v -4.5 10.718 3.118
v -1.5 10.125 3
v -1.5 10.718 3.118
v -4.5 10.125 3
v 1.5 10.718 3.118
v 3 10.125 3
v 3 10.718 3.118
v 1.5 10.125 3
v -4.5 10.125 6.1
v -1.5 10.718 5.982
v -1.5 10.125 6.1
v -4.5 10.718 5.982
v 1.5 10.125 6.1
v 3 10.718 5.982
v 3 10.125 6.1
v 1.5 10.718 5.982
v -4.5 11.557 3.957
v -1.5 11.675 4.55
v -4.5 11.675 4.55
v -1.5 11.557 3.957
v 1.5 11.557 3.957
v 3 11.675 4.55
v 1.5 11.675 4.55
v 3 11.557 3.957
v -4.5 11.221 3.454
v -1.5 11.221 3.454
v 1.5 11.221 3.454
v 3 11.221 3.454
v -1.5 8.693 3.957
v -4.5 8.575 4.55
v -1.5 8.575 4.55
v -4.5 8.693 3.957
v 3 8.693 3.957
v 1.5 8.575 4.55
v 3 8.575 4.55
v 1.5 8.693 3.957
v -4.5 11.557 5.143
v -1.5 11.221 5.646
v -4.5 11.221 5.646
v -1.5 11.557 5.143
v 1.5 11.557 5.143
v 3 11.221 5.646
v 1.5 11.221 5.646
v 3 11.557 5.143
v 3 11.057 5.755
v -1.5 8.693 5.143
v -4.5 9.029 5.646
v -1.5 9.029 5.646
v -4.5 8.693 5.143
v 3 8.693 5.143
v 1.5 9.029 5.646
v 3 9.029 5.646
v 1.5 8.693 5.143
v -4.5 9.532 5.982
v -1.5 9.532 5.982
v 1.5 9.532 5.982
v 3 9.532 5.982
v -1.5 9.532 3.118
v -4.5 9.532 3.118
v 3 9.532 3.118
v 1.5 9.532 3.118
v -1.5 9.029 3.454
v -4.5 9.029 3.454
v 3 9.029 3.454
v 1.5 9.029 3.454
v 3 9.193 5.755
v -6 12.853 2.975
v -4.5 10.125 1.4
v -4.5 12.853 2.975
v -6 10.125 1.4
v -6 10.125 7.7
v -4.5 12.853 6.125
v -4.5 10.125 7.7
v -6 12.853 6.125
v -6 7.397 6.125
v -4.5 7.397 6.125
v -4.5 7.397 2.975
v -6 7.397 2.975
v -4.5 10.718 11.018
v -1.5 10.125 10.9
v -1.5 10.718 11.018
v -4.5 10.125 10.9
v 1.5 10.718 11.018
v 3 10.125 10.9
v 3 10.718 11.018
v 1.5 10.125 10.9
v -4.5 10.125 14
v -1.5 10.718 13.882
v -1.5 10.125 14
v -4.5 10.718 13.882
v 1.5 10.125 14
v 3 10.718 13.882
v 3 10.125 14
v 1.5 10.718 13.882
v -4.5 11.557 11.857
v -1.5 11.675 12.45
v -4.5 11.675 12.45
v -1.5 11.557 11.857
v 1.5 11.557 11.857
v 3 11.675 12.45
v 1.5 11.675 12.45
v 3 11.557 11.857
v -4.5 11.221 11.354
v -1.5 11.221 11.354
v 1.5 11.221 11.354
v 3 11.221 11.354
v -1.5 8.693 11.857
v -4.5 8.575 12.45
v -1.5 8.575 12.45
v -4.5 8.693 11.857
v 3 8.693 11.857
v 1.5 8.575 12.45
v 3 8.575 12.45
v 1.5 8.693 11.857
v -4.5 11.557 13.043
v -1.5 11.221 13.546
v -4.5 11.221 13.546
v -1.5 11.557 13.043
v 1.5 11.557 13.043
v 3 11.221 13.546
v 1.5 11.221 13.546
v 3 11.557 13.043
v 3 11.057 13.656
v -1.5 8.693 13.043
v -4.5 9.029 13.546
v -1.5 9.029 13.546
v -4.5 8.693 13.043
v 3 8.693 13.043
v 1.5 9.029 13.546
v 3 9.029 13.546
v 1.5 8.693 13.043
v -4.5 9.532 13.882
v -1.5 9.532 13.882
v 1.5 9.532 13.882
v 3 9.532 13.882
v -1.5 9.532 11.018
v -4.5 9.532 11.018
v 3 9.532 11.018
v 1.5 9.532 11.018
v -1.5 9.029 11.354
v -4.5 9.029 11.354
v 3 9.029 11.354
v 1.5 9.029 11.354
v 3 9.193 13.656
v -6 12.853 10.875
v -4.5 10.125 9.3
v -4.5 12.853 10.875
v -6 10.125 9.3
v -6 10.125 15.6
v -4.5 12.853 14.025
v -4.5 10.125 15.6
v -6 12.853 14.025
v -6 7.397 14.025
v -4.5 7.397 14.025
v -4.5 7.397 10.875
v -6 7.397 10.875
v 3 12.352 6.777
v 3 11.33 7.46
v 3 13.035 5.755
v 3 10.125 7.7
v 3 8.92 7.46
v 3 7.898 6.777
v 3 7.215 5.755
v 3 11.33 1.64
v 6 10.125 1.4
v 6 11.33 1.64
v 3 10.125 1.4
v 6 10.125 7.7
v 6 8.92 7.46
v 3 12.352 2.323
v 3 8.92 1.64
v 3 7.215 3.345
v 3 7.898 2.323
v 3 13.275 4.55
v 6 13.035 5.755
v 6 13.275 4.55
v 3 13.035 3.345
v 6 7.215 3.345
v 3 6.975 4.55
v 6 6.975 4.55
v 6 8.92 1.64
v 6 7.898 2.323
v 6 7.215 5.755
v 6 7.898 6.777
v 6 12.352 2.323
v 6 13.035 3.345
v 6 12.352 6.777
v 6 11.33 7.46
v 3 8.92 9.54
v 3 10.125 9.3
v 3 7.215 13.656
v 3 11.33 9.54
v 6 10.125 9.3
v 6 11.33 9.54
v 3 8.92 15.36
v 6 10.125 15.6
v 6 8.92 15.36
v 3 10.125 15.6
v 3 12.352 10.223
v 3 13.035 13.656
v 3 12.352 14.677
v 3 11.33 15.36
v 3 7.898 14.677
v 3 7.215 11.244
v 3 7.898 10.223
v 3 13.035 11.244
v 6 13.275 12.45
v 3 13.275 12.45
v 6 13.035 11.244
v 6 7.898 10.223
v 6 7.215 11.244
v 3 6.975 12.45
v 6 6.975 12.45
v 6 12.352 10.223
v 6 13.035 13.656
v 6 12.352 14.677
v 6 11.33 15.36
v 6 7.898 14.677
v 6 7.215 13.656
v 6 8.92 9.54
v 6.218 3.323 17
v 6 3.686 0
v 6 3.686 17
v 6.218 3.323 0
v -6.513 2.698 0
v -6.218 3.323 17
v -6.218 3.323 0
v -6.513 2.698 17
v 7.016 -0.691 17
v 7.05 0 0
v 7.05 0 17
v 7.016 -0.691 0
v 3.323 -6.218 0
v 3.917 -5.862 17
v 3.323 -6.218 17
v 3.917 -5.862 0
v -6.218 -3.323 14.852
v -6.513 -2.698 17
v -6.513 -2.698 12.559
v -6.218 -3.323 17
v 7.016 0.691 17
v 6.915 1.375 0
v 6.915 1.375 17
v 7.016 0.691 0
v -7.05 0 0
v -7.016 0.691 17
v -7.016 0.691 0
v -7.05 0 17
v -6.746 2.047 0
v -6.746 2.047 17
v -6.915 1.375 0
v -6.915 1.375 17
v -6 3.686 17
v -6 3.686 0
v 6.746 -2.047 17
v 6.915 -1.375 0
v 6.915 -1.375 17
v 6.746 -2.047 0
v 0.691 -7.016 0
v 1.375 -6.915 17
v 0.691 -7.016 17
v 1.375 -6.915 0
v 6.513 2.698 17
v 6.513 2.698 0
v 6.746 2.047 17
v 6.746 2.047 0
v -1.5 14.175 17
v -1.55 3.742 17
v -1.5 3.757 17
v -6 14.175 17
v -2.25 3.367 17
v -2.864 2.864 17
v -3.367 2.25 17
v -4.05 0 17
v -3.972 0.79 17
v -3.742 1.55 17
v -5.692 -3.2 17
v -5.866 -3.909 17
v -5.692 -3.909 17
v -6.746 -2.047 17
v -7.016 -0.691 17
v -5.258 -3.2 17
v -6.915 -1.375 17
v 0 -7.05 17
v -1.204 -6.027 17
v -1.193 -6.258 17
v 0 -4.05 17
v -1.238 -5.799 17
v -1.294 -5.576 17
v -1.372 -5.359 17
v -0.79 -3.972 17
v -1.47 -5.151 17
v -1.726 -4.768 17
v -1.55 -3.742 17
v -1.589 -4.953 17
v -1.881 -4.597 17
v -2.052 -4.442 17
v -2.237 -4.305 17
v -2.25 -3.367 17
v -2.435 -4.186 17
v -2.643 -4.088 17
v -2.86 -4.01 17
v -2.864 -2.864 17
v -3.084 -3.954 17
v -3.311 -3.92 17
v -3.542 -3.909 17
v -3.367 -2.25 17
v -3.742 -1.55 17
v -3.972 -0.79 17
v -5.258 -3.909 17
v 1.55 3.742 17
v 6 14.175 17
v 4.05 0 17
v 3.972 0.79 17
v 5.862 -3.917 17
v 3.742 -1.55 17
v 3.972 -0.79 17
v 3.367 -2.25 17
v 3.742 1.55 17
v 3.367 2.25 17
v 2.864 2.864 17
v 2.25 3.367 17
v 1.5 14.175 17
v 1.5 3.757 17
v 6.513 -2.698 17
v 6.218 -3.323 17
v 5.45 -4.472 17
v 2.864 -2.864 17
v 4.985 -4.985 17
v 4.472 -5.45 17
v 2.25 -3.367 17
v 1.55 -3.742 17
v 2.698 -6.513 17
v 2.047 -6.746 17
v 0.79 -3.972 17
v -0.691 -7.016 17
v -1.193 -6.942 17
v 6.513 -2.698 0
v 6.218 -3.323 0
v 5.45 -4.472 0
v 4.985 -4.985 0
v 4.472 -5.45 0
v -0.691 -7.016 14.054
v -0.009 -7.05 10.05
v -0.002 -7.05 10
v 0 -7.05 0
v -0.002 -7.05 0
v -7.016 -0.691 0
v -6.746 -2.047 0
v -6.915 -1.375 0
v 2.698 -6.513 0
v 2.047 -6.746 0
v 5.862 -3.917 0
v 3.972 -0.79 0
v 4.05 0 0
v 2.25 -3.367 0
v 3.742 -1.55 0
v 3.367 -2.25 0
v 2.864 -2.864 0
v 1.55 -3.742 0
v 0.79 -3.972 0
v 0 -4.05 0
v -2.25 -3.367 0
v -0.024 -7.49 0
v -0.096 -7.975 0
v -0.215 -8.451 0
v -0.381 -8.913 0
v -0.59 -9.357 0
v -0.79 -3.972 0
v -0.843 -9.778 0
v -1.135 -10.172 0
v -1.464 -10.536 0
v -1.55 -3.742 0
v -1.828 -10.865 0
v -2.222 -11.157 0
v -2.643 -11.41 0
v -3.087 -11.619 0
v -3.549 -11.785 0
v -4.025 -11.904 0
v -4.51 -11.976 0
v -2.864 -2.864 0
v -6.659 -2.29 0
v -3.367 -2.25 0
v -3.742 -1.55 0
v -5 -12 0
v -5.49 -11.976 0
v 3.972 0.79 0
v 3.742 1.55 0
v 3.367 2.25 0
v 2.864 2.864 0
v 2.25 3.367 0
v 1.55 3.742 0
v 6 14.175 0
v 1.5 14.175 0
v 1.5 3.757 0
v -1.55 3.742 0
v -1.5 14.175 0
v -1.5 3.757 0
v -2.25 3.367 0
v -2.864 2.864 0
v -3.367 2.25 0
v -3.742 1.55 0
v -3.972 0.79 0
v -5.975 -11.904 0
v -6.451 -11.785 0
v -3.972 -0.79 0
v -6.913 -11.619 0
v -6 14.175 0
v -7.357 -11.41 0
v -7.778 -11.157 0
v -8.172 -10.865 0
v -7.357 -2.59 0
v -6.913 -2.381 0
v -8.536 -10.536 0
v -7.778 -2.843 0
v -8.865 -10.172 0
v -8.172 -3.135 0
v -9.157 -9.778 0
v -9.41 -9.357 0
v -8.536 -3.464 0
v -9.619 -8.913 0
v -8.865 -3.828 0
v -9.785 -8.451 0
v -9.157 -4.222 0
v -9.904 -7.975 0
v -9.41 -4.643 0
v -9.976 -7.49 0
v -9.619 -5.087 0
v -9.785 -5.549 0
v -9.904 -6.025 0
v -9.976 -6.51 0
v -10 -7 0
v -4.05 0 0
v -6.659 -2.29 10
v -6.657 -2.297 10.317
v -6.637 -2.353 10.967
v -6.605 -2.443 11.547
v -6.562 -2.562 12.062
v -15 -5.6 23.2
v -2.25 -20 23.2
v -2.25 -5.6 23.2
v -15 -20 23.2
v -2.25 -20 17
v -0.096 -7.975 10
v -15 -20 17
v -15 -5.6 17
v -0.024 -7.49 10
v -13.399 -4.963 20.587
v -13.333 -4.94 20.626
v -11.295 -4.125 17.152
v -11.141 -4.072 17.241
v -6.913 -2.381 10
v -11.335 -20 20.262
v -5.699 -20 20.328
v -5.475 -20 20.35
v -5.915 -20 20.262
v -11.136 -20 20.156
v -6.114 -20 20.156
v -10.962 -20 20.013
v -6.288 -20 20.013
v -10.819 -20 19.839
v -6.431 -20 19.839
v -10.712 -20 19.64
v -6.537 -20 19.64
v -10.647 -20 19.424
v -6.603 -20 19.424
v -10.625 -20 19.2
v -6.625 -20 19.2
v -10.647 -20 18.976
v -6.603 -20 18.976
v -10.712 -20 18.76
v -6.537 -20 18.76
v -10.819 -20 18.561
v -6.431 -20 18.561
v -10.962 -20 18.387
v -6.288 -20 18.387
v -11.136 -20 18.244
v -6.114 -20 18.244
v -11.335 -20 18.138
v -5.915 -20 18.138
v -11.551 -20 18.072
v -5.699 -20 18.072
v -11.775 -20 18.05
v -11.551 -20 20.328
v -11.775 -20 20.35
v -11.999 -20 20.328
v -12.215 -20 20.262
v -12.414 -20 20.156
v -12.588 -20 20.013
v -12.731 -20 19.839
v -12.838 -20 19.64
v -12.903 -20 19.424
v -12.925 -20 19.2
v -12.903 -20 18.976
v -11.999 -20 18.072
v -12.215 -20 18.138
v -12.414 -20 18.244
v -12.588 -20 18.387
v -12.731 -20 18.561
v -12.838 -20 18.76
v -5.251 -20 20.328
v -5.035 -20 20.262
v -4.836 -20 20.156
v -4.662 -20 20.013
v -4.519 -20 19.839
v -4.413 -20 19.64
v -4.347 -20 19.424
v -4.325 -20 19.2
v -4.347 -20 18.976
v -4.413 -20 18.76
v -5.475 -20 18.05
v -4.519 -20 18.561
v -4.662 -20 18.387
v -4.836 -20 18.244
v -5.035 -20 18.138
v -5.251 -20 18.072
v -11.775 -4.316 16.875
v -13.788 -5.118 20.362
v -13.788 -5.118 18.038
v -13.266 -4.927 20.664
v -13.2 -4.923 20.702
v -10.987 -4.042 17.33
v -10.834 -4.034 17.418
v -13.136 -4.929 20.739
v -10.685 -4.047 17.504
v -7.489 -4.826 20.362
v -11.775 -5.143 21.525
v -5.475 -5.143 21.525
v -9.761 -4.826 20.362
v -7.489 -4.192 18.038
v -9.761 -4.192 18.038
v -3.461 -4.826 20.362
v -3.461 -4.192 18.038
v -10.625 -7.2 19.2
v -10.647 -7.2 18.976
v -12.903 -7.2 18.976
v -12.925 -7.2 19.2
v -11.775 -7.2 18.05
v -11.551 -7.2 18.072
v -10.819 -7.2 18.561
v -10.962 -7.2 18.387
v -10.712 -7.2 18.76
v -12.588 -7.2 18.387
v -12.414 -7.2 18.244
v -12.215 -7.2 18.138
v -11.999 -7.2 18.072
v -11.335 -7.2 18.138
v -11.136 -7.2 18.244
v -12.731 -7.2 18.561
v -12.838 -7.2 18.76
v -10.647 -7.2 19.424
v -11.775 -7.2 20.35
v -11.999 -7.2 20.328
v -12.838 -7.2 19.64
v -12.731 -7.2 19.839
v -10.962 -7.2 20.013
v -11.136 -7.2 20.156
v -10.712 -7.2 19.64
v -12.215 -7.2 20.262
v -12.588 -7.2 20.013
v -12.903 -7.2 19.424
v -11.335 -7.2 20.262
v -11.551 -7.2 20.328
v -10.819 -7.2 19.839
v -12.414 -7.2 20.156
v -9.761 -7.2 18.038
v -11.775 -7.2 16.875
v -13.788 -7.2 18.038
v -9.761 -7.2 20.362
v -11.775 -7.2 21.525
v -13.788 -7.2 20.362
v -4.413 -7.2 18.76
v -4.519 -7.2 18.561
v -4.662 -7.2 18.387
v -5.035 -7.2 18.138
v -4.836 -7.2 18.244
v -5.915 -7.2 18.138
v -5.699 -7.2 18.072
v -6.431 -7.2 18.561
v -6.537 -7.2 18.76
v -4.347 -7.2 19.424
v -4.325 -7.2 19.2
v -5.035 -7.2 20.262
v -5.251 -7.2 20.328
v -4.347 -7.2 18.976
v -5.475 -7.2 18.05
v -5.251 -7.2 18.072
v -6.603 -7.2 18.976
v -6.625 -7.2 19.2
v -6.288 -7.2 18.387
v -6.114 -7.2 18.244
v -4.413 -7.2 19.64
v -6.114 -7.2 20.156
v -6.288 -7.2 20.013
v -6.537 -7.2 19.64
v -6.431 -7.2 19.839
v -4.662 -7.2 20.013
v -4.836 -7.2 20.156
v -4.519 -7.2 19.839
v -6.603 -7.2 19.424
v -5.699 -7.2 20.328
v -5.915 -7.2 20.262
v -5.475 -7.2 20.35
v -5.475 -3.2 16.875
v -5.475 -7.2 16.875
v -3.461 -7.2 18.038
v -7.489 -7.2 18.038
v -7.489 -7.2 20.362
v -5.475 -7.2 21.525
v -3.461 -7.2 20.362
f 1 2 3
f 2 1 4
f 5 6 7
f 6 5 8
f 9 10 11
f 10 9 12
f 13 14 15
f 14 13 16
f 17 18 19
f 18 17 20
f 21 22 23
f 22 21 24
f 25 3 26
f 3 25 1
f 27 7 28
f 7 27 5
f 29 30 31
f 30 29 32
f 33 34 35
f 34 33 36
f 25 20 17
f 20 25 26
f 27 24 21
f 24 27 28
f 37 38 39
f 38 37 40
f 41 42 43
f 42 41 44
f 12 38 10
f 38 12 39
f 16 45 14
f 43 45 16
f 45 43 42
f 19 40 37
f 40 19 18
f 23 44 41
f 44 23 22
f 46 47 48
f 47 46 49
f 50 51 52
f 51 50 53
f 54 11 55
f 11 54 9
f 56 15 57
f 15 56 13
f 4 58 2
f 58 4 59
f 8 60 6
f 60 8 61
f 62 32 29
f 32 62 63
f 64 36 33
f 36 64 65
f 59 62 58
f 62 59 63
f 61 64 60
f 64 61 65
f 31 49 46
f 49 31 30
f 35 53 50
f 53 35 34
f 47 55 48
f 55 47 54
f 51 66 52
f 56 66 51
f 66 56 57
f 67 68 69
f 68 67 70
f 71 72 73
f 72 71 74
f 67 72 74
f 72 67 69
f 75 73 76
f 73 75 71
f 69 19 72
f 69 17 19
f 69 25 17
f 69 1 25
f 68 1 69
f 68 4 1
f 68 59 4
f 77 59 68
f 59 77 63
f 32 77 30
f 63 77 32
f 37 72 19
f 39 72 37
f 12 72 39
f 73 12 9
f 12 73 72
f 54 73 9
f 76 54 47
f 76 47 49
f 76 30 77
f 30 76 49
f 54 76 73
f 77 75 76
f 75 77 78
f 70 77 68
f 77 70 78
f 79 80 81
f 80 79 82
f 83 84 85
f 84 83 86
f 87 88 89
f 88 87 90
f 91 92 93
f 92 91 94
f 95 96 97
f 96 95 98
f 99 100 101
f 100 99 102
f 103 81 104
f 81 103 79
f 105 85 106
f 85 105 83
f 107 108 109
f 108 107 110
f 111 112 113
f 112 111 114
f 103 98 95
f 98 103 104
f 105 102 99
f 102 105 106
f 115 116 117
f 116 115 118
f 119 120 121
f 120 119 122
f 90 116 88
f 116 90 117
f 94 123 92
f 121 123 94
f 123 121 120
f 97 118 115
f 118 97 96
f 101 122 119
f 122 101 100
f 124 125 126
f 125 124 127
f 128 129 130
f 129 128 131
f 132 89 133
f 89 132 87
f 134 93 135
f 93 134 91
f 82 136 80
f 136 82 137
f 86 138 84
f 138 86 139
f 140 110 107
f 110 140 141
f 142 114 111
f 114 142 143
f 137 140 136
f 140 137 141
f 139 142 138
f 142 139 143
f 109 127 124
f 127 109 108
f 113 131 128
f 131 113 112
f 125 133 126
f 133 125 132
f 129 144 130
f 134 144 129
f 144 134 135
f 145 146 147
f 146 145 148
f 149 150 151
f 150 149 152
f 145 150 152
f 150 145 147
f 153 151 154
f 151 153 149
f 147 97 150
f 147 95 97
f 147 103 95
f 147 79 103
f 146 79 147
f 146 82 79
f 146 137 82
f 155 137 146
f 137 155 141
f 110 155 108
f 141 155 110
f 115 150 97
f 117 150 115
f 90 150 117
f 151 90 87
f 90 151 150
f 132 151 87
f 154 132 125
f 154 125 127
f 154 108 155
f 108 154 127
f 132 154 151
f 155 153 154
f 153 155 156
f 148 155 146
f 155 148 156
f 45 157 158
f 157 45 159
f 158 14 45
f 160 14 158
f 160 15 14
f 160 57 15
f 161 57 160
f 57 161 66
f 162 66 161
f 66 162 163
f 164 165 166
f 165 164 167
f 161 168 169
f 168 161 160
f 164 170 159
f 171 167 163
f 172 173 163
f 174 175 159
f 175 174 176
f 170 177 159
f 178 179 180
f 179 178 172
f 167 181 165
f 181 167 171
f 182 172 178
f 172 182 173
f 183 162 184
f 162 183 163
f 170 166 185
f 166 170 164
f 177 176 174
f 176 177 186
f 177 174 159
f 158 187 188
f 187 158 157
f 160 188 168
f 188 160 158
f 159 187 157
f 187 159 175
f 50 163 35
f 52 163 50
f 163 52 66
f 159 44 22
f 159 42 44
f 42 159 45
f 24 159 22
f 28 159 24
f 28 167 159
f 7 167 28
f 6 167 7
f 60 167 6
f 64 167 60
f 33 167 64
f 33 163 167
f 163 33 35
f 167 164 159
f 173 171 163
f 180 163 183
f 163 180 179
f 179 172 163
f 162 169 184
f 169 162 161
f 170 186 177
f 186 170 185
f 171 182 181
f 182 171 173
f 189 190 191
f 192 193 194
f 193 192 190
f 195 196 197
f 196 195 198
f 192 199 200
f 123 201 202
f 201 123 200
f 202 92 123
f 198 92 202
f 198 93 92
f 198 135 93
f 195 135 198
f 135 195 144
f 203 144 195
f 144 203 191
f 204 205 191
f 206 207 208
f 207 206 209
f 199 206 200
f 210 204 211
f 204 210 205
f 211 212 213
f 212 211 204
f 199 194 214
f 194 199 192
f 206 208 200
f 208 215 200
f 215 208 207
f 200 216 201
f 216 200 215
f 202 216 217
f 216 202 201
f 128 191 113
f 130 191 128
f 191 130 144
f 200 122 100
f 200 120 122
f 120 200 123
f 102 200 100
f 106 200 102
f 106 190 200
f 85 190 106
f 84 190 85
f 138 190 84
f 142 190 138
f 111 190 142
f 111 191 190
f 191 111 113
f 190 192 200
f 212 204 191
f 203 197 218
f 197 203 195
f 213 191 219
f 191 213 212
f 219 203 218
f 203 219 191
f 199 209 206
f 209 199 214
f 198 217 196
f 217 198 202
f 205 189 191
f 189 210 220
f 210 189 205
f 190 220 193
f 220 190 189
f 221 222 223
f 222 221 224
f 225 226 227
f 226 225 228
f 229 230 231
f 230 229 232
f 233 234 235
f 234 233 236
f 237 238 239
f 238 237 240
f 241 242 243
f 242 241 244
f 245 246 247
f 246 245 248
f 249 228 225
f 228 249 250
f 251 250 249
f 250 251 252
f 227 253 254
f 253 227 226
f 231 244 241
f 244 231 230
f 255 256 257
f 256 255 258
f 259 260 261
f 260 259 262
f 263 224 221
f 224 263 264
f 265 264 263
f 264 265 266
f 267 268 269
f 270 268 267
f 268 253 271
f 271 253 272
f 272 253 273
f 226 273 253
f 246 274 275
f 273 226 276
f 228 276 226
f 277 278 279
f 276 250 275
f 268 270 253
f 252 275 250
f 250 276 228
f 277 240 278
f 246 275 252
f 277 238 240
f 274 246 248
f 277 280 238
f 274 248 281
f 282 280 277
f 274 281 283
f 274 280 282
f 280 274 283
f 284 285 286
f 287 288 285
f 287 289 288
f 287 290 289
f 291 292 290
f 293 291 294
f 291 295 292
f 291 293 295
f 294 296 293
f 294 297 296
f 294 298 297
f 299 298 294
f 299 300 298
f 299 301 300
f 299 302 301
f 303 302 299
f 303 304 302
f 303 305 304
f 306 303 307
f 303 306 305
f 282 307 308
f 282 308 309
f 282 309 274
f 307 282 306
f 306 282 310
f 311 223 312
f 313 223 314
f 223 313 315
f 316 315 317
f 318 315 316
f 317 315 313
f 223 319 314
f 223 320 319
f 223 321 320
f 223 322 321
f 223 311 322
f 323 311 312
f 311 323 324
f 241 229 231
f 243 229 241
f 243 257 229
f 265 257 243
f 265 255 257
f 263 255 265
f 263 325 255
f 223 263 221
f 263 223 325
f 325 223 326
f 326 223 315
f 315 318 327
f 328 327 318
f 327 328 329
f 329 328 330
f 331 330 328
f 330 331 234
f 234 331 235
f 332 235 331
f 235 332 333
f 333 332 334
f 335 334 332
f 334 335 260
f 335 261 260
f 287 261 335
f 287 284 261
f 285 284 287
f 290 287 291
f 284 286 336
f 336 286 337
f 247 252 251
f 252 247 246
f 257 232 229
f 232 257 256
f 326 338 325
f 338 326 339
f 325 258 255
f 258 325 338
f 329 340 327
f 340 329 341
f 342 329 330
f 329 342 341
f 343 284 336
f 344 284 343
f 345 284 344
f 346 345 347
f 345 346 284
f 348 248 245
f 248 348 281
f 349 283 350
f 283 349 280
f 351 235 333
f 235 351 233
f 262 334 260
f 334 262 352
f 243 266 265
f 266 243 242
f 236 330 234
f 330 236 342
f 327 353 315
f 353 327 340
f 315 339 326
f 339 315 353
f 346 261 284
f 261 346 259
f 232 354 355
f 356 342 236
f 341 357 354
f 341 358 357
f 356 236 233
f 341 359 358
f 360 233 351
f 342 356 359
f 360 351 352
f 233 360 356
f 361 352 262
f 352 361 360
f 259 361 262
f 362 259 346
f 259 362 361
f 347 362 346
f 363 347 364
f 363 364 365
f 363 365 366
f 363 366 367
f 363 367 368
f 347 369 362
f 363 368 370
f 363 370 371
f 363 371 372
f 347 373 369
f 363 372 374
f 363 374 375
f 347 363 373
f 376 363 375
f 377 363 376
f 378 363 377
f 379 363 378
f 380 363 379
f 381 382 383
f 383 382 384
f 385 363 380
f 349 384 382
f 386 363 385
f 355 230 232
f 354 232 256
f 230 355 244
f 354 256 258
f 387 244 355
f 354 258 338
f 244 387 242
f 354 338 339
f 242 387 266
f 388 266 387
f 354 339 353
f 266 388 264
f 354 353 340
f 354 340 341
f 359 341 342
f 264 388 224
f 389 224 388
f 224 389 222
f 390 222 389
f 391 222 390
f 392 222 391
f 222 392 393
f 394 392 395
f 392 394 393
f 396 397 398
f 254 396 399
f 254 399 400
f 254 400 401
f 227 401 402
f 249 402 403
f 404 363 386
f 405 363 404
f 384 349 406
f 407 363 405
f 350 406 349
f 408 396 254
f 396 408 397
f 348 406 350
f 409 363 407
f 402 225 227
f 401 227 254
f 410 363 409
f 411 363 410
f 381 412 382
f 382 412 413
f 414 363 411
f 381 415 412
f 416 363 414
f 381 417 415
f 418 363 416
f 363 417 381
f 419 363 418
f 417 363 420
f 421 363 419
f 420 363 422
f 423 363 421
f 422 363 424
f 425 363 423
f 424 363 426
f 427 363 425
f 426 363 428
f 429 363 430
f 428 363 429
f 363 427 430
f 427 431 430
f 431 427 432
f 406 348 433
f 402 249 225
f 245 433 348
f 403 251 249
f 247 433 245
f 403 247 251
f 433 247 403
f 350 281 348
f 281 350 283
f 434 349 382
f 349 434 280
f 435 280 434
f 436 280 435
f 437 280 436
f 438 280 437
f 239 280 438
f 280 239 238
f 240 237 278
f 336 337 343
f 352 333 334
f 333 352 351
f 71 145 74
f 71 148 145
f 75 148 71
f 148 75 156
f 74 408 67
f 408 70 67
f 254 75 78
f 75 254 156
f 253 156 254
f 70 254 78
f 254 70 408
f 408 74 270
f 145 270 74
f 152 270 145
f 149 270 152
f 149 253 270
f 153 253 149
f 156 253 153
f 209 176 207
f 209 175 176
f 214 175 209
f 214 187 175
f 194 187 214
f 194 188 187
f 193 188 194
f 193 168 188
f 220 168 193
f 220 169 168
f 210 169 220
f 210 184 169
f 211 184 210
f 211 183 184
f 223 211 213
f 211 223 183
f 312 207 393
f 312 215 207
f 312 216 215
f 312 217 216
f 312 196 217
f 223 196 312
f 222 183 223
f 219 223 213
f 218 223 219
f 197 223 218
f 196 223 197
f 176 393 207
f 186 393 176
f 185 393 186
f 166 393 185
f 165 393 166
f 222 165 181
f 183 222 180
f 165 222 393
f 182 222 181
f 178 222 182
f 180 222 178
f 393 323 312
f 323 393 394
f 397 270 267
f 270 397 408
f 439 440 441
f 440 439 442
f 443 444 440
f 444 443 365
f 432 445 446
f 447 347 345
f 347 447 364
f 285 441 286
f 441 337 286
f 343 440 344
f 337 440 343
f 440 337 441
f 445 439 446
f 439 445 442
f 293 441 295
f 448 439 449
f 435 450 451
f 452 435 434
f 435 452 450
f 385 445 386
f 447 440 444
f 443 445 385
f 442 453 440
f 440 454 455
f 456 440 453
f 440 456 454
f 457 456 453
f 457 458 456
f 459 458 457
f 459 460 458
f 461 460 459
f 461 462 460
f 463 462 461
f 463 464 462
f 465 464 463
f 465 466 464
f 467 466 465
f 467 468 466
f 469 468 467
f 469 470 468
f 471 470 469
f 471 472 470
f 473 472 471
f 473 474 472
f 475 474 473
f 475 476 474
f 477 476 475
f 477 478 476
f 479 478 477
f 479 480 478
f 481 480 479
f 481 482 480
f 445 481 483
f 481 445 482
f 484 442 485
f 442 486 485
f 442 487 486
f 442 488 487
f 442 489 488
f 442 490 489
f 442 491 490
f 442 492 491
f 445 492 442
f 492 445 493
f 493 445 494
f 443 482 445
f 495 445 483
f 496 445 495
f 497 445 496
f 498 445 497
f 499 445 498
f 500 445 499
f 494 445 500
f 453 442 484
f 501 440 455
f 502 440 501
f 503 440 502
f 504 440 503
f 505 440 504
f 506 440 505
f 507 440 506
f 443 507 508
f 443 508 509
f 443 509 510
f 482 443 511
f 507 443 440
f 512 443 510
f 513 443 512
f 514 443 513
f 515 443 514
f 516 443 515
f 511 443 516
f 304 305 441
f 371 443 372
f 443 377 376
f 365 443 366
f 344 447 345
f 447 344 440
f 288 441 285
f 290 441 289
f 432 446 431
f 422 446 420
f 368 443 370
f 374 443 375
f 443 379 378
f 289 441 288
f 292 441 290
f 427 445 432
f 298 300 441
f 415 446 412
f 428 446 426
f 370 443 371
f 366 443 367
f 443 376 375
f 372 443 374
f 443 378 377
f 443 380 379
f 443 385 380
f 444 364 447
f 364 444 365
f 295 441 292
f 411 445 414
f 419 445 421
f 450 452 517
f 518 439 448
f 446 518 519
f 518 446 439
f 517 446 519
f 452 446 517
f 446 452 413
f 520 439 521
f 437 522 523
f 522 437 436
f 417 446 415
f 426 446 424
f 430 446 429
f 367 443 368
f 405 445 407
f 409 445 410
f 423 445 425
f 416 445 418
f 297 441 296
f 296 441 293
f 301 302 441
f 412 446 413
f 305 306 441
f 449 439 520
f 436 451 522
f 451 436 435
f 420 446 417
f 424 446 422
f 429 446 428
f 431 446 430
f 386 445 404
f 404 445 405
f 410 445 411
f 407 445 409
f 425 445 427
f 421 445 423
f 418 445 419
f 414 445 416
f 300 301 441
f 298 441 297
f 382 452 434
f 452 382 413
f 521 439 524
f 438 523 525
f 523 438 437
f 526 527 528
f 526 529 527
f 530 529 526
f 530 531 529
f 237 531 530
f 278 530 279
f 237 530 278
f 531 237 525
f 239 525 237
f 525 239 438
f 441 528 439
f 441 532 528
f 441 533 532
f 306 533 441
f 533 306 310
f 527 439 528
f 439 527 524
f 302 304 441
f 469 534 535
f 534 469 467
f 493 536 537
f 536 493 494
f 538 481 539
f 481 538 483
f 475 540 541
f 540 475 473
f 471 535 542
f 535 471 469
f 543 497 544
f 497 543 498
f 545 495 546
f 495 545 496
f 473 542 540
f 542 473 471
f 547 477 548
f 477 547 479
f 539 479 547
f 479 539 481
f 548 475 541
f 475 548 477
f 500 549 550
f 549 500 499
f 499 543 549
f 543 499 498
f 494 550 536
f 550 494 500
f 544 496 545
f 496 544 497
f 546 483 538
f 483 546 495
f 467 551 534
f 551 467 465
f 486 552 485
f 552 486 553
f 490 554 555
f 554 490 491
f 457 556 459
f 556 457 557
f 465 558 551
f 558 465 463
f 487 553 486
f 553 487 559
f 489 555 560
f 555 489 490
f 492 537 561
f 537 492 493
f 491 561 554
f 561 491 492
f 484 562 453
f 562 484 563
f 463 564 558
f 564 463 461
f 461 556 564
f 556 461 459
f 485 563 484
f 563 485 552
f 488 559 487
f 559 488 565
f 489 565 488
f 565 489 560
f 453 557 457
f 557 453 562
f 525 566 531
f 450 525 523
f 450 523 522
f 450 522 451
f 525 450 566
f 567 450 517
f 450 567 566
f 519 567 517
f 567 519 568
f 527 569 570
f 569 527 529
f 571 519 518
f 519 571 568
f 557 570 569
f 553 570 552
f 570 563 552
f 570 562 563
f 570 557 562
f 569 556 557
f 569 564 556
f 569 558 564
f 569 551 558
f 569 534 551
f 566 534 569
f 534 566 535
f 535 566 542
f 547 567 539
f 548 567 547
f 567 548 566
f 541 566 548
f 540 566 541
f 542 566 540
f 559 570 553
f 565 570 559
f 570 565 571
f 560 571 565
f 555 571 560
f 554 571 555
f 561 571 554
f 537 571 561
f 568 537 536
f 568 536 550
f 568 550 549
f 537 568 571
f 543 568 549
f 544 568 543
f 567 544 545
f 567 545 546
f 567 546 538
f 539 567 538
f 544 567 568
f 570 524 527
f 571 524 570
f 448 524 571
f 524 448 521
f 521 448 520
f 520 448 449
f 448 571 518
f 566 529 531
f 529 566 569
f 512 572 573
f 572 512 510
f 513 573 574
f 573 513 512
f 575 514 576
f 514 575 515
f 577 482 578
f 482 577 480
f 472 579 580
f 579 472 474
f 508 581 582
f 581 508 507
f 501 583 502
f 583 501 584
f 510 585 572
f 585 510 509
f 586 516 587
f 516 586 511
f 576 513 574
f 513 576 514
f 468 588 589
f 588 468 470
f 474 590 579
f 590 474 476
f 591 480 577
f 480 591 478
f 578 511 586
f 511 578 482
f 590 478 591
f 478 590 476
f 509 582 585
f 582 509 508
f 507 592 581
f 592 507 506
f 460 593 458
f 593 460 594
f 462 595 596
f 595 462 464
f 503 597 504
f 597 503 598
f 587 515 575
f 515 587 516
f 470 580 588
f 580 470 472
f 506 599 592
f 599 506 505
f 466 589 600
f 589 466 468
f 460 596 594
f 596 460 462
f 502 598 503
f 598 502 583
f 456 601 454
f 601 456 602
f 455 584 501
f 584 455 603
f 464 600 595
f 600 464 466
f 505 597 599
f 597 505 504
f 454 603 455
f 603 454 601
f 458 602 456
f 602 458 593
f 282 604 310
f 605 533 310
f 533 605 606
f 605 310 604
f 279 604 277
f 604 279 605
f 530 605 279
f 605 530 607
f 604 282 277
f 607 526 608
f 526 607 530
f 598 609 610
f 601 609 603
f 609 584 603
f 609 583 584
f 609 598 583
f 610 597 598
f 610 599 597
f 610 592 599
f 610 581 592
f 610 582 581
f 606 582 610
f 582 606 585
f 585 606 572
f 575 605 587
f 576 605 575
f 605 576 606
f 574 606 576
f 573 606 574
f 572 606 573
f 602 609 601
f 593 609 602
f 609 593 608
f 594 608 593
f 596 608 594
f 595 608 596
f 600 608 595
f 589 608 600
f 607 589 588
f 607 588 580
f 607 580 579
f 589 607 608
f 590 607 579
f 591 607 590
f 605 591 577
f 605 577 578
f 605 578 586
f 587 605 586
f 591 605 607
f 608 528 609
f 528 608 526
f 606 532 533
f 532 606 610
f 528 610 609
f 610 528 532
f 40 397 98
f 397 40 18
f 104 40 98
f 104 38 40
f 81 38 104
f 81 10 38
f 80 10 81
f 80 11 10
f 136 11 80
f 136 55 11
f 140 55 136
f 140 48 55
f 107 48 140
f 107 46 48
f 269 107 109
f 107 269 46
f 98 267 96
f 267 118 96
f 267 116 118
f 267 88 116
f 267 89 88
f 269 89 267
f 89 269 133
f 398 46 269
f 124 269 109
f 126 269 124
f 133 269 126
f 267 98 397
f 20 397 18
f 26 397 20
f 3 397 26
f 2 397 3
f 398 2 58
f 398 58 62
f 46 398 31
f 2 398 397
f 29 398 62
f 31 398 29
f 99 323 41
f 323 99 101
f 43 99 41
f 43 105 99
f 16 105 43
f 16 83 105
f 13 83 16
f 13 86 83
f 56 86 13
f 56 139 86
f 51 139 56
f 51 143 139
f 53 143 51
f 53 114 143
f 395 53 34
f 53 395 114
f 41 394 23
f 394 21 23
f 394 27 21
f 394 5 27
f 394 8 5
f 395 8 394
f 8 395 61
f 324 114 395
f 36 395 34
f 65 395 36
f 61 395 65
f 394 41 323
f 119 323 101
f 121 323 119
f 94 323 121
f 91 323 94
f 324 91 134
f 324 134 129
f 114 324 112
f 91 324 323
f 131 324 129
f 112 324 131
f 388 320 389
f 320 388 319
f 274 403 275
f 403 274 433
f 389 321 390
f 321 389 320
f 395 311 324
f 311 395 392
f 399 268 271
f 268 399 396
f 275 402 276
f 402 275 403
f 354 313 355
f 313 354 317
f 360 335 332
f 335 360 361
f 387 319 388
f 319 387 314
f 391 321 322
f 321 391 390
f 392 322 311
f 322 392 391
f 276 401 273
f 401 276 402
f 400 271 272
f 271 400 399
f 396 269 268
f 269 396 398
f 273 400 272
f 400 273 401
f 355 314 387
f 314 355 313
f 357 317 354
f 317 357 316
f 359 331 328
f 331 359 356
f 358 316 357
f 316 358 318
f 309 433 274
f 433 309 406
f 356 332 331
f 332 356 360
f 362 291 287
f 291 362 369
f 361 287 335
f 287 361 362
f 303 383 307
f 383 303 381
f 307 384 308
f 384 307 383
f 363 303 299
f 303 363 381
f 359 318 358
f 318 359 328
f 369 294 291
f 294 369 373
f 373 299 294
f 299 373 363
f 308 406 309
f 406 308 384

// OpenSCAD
module microswitsch_Z_Holder() {
    screwhole_diameter = 3.1;
    screwhole_distance = 19;
    nut_diameter=6.3;
    wall_thickness = 3;
    rod_diameter = 8.1;
    height = 17;
    difference() {
        union() {
            cylinder(d=rod_diameter+2*wall_thickness, h=height, $fn=64);
            translate([-4*wall_thickness/2, 0, 0]) {
                cube([4*wall_thickness, 1.75*rod_diameter, height]);
            }
            hull() {
                translate([-15, -20, height]) cube([12.75, 20-5.6, 6.2]);
                translate([-5, -7, 0]) cylinder(d=10, h=10, $fn=64);
            }
        }
        translate([-wall_thickness/2, 0, -1]) {
            cube([wall_thickness, 2*rod_diameter+1, height+2]);
        }
        translate([0, 0, -1]) {
            cylinder(d=rod_diameter, h=height+20, $fn=32);
        }
        for(i=[wall_thickness+screwhole_diameter/2, height-wall_thickness-screwhole_diameter/2]) {
            translate([-rod_diameter, 1.25*rod_diameter, i]) {
                rotate([0, 90, 0]) {
                    cylinder(d=screwhole_diameter, h=2*rod_diameter, $fn=16);
                    cylinder(d=nut_diameter, h=rod_diameter-1.5*wall_thickness, $fn=6);
                }
            }
            translate([wall_thickness, 1.25*rod_diameter, i]) {
                rotate([0, 90, 0]) {
                    cylinder(d=nut_diameter, h=rod_diameter-1.5*wall_thickness, $fn=16);
                }
            }
        }
        for(i=[0, 1]) {
            translate([-15+(12.75-6.3)/2+i*6.3, -20-1, height+6.2-5+1]) rotate([-90, 0, 0]) cylinder(d=2.3, h=25, $fn=32);
            translate([-15+(12.75-6.3)/2+i*6.3, -5.6-1.6, height+6.2-5+1]) rotate([-90, 30, 0]) cylinder(d=4.65, h=4, $fn=6);
        }
    }
}

microswitsch_Z_Holder();
